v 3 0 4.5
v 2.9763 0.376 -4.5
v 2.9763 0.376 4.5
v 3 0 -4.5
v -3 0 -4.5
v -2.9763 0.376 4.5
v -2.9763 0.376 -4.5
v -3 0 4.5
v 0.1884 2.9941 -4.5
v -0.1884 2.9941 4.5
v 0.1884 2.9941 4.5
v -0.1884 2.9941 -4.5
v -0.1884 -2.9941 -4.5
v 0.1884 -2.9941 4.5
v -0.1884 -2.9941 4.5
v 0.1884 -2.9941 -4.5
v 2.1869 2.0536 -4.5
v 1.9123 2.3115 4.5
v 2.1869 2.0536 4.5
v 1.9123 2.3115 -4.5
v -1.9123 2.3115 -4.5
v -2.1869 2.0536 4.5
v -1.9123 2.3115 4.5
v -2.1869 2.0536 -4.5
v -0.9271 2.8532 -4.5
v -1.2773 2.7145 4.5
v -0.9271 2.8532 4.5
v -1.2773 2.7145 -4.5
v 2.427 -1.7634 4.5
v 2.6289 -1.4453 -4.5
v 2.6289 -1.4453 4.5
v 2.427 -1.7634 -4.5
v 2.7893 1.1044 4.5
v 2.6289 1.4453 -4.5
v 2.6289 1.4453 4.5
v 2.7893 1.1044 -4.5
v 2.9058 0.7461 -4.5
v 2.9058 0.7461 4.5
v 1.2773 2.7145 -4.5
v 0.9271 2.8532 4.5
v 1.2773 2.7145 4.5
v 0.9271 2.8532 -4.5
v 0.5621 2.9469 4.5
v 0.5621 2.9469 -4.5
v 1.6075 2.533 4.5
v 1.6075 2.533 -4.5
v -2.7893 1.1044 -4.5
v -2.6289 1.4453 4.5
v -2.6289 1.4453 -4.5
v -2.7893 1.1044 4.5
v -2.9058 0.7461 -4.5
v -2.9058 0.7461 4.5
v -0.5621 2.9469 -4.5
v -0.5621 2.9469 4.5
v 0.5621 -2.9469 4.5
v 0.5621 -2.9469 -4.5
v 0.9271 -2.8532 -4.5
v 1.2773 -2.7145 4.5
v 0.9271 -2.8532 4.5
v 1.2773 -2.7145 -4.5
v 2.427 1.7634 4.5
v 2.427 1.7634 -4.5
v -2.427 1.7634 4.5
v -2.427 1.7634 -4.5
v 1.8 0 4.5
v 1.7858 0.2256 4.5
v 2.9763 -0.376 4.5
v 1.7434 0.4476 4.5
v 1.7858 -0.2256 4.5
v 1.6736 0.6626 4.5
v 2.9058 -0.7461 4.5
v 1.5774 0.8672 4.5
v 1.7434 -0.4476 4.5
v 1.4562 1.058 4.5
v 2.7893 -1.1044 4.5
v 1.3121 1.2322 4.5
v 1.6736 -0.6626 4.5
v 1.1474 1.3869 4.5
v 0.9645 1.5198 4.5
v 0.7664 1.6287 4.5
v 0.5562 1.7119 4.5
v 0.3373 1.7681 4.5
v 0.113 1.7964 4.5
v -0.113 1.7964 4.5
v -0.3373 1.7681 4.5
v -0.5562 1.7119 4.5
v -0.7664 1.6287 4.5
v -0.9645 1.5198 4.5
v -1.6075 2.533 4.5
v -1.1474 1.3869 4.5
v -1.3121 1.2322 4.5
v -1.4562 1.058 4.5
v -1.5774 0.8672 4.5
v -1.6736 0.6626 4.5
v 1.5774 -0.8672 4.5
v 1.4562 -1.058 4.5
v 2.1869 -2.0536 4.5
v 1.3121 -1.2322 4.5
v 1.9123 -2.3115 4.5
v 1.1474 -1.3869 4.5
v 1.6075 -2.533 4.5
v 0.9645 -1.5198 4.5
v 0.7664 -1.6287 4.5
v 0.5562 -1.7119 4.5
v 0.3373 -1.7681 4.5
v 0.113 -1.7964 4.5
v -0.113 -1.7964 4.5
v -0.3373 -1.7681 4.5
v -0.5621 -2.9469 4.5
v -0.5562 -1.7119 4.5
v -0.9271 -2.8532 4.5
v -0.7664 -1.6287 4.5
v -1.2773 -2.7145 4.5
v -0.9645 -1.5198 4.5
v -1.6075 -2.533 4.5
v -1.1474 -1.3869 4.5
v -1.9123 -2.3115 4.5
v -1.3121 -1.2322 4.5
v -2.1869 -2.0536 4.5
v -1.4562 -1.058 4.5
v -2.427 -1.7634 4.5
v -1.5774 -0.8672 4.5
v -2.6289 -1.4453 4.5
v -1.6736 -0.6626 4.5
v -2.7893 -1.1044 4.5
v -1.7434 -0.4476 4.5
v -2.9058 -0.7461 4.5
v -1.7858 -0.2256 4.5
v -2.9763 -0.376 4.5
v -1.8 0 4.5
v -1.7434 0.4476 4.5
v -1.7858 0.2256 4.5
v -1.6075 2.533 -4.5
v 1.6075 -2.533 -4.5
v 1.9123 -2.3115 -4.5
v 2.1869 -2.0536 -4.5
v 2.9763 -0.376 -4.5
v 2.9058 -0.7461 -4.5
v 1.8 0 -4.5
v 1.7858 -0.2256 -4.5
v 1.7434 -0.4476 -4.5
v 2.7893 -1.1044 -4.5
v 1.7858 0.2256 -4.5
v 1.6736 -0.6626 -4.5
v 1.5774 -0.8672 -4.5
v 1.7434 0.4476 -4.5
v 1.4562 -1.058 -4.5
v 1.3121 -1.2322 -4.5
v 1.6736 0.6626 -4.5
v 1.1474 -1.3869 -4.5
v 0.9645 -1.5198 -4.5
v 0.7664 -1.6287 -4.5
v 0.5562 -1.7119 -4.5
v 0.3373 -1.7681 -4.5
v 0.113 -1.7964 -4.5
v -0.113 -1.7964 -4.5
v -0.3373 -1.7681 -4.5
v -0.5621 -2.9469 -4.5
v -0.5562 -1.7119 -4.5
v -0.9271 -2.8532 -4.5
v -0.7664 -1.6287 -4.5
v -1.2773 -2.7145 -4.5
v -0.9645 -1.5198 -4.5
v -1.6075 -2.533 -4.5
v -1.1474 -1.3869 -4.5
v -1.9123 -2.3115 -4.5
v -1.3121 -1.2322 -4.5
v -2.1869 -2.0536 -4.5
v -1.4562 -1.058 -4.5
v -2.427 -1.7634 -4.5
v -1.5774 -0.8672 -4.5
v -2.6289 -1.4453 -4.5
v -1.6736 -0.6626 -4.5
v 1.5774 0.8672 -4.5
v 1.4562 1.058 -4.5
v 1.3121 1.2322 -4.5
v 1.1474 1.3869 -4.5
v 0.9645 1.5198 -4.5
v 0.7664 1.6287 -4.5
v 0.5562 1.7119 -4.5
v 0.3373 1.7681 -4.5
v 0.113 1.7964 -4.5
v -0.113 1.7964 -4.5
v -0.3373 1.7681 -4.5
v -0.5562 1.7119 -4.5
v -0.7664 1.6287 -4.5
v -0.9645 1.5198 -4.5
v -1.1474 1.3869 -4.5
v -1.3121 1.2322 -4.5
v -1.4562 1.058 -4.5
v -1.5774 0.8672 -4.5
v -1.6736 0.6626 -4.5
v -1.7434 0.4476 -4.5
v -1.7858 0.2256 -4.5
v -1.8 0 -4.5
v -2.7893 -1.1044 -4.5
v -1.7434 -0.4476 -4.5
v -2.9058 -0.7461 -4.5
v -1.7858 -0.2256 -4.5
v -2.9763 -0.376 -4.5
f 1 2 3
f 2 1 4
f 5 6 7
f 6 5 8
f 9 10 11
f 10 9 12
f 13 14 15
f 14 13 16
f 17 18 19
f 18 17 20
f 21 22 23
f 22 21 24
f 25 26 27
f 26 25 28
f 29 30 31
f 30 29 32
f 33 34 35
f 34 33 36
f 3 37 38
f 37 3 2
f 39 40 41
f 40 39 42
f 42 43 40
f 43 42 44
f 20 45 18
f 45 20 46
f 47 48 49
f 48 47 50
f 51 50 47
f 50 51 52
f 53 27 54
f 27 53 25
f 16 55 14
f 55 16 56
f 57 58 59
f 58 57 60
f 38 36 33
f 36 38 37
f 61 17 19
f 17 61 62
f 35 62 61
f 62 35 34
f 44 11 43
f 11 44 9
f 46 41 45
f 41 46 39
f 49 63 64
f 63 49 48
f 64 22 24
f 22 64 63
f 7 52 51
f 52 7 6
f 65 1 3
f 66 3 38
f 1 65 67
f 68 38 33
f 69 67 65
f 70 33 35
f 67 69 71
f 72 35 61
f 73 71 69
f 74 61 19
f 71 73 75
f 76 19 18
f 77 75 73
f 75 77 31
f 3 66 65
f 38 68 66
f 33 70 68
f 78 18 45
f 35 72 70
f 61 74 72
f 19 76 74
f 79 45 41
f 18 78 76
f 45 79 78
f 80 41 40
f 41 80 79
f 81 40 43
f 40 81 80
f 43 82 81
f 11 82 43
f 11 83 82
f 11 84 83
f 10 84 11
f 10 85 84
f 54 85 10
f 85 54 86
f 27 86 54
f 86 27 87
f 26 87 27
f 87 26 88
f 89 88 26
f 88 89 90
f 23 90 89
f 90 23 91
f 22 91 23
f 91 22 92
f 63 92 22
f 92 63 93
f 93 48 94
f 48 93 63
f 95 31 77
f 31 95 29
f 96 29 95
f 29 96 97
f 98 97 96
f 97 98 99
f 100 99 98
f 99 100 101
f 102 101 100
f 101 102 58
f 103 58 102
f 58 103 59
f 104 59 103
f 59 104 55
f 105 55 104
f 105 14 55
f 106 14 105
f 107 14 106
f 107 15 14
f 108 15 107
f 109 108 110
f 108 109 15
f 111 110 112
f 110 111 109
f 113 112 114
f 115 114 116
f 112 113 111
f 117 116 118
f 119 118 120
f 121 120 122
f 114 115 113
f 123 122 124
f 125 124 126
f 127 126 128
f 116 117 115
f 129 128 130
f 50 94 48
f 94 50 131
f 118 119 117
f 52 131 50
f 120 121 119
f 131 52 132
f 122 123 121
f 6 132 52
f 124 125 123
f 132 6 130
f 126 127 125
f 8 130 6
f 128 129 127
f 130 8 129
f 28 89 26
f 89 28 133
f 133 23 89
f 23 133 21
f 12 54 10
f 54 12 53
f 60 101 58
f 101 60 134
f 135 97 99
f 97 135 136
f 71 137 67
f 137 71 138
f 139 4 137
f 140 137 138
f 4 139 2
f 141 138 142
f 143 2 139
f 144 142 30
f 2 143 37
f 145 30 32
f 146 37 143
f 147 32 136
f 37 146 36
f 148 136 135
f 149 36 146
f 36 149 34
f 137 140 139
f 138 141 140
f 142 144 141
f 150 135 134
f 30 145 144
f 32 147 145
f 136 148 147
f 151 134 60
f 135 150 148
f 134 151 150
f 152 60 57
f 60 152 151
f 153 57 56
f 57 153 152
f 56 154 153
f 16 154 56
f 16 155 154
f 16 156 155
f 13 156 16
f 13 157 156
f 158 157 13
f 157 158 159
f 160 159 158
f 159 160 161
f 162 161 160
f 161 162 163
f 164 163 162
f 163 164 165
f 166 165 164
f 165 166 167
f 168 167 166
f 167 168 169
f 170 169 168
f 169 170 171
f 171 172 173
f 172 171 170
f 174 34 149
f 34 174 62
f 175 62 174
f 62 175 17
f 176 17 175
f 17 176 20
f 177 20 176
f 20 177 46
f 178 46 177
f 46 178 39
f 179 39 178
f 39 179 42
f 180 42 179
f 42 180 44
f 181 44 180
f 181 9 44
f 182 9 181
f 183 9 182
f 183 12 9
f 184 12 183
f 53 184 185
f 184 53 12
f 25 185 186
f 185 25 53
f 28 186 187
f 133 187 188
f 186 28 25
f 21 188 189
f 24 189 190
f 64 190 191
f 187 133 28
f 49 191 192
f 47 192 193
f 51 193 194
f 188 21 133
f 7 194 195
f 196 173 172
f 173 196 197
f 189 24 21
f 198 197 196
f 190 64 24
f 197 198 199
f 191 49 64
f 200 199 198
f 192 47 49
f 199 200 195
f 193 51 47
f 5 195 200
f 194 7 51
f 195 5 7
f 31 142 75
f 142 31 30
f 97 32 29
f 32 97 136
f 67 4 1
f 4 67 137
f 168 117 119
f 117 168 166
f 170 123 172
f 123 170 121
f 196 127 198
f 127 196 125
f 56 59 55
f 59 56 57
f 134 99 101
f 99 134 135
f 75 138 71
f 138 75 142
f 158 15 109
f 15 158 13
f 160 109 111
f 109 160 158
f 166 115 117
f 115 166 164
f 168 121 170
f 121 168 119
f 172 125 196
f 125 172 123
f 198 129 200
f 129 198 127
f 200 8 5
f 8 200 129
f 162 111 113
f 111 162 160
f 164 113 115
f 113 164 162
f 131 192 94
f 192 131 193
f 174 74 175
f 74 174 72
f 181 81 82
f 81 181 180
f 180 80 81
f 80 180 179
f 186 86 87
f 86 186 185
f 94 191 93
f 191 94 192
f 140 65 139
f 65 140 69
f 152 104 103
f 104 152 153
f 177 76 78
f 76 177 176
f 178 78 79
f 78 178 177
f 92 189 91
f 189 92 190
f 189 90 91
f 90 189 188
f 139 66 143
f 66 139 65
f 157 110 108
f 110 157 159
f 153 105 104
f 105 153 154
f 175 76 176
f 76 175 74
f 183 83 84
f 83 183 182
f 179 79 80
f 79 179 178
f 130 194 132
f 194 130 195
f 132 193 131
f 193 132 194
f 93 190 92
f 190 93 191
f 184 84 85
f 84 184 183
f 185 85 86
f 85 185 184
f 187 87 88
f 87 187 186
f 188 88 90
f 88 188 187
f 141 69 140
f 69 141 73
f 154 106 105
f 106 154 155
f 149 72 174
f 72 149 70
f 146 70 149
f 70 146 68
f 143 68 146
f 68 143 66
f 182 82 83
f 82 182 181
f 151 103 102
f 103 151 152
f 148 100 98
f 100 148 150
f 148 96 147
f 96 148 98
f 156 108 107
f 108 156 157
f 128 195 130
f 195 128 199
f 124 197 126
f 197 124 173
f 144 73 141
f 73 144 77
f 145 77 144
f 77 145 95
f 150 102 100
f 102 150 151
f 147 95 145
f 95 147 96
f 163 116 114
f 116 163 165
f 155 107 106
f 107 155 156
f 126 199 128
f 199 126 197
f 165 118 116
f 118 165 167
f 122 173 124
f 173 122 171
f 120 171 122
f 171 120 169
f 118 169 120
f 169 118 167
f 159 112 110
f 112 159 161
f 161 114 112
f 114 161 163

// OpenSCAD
$fn = 50;


difference() {
	union() {
		translate(v = [0, 0, -4.5000000000]) {
			cylinder(h = 9, r = 3.0000000000);
		}
	}
	union() {
		translate(v = [0, 0, -100.0000000000]) {
			cylinder(h = 200, r = 1.8000000000);
		}
	}
}
